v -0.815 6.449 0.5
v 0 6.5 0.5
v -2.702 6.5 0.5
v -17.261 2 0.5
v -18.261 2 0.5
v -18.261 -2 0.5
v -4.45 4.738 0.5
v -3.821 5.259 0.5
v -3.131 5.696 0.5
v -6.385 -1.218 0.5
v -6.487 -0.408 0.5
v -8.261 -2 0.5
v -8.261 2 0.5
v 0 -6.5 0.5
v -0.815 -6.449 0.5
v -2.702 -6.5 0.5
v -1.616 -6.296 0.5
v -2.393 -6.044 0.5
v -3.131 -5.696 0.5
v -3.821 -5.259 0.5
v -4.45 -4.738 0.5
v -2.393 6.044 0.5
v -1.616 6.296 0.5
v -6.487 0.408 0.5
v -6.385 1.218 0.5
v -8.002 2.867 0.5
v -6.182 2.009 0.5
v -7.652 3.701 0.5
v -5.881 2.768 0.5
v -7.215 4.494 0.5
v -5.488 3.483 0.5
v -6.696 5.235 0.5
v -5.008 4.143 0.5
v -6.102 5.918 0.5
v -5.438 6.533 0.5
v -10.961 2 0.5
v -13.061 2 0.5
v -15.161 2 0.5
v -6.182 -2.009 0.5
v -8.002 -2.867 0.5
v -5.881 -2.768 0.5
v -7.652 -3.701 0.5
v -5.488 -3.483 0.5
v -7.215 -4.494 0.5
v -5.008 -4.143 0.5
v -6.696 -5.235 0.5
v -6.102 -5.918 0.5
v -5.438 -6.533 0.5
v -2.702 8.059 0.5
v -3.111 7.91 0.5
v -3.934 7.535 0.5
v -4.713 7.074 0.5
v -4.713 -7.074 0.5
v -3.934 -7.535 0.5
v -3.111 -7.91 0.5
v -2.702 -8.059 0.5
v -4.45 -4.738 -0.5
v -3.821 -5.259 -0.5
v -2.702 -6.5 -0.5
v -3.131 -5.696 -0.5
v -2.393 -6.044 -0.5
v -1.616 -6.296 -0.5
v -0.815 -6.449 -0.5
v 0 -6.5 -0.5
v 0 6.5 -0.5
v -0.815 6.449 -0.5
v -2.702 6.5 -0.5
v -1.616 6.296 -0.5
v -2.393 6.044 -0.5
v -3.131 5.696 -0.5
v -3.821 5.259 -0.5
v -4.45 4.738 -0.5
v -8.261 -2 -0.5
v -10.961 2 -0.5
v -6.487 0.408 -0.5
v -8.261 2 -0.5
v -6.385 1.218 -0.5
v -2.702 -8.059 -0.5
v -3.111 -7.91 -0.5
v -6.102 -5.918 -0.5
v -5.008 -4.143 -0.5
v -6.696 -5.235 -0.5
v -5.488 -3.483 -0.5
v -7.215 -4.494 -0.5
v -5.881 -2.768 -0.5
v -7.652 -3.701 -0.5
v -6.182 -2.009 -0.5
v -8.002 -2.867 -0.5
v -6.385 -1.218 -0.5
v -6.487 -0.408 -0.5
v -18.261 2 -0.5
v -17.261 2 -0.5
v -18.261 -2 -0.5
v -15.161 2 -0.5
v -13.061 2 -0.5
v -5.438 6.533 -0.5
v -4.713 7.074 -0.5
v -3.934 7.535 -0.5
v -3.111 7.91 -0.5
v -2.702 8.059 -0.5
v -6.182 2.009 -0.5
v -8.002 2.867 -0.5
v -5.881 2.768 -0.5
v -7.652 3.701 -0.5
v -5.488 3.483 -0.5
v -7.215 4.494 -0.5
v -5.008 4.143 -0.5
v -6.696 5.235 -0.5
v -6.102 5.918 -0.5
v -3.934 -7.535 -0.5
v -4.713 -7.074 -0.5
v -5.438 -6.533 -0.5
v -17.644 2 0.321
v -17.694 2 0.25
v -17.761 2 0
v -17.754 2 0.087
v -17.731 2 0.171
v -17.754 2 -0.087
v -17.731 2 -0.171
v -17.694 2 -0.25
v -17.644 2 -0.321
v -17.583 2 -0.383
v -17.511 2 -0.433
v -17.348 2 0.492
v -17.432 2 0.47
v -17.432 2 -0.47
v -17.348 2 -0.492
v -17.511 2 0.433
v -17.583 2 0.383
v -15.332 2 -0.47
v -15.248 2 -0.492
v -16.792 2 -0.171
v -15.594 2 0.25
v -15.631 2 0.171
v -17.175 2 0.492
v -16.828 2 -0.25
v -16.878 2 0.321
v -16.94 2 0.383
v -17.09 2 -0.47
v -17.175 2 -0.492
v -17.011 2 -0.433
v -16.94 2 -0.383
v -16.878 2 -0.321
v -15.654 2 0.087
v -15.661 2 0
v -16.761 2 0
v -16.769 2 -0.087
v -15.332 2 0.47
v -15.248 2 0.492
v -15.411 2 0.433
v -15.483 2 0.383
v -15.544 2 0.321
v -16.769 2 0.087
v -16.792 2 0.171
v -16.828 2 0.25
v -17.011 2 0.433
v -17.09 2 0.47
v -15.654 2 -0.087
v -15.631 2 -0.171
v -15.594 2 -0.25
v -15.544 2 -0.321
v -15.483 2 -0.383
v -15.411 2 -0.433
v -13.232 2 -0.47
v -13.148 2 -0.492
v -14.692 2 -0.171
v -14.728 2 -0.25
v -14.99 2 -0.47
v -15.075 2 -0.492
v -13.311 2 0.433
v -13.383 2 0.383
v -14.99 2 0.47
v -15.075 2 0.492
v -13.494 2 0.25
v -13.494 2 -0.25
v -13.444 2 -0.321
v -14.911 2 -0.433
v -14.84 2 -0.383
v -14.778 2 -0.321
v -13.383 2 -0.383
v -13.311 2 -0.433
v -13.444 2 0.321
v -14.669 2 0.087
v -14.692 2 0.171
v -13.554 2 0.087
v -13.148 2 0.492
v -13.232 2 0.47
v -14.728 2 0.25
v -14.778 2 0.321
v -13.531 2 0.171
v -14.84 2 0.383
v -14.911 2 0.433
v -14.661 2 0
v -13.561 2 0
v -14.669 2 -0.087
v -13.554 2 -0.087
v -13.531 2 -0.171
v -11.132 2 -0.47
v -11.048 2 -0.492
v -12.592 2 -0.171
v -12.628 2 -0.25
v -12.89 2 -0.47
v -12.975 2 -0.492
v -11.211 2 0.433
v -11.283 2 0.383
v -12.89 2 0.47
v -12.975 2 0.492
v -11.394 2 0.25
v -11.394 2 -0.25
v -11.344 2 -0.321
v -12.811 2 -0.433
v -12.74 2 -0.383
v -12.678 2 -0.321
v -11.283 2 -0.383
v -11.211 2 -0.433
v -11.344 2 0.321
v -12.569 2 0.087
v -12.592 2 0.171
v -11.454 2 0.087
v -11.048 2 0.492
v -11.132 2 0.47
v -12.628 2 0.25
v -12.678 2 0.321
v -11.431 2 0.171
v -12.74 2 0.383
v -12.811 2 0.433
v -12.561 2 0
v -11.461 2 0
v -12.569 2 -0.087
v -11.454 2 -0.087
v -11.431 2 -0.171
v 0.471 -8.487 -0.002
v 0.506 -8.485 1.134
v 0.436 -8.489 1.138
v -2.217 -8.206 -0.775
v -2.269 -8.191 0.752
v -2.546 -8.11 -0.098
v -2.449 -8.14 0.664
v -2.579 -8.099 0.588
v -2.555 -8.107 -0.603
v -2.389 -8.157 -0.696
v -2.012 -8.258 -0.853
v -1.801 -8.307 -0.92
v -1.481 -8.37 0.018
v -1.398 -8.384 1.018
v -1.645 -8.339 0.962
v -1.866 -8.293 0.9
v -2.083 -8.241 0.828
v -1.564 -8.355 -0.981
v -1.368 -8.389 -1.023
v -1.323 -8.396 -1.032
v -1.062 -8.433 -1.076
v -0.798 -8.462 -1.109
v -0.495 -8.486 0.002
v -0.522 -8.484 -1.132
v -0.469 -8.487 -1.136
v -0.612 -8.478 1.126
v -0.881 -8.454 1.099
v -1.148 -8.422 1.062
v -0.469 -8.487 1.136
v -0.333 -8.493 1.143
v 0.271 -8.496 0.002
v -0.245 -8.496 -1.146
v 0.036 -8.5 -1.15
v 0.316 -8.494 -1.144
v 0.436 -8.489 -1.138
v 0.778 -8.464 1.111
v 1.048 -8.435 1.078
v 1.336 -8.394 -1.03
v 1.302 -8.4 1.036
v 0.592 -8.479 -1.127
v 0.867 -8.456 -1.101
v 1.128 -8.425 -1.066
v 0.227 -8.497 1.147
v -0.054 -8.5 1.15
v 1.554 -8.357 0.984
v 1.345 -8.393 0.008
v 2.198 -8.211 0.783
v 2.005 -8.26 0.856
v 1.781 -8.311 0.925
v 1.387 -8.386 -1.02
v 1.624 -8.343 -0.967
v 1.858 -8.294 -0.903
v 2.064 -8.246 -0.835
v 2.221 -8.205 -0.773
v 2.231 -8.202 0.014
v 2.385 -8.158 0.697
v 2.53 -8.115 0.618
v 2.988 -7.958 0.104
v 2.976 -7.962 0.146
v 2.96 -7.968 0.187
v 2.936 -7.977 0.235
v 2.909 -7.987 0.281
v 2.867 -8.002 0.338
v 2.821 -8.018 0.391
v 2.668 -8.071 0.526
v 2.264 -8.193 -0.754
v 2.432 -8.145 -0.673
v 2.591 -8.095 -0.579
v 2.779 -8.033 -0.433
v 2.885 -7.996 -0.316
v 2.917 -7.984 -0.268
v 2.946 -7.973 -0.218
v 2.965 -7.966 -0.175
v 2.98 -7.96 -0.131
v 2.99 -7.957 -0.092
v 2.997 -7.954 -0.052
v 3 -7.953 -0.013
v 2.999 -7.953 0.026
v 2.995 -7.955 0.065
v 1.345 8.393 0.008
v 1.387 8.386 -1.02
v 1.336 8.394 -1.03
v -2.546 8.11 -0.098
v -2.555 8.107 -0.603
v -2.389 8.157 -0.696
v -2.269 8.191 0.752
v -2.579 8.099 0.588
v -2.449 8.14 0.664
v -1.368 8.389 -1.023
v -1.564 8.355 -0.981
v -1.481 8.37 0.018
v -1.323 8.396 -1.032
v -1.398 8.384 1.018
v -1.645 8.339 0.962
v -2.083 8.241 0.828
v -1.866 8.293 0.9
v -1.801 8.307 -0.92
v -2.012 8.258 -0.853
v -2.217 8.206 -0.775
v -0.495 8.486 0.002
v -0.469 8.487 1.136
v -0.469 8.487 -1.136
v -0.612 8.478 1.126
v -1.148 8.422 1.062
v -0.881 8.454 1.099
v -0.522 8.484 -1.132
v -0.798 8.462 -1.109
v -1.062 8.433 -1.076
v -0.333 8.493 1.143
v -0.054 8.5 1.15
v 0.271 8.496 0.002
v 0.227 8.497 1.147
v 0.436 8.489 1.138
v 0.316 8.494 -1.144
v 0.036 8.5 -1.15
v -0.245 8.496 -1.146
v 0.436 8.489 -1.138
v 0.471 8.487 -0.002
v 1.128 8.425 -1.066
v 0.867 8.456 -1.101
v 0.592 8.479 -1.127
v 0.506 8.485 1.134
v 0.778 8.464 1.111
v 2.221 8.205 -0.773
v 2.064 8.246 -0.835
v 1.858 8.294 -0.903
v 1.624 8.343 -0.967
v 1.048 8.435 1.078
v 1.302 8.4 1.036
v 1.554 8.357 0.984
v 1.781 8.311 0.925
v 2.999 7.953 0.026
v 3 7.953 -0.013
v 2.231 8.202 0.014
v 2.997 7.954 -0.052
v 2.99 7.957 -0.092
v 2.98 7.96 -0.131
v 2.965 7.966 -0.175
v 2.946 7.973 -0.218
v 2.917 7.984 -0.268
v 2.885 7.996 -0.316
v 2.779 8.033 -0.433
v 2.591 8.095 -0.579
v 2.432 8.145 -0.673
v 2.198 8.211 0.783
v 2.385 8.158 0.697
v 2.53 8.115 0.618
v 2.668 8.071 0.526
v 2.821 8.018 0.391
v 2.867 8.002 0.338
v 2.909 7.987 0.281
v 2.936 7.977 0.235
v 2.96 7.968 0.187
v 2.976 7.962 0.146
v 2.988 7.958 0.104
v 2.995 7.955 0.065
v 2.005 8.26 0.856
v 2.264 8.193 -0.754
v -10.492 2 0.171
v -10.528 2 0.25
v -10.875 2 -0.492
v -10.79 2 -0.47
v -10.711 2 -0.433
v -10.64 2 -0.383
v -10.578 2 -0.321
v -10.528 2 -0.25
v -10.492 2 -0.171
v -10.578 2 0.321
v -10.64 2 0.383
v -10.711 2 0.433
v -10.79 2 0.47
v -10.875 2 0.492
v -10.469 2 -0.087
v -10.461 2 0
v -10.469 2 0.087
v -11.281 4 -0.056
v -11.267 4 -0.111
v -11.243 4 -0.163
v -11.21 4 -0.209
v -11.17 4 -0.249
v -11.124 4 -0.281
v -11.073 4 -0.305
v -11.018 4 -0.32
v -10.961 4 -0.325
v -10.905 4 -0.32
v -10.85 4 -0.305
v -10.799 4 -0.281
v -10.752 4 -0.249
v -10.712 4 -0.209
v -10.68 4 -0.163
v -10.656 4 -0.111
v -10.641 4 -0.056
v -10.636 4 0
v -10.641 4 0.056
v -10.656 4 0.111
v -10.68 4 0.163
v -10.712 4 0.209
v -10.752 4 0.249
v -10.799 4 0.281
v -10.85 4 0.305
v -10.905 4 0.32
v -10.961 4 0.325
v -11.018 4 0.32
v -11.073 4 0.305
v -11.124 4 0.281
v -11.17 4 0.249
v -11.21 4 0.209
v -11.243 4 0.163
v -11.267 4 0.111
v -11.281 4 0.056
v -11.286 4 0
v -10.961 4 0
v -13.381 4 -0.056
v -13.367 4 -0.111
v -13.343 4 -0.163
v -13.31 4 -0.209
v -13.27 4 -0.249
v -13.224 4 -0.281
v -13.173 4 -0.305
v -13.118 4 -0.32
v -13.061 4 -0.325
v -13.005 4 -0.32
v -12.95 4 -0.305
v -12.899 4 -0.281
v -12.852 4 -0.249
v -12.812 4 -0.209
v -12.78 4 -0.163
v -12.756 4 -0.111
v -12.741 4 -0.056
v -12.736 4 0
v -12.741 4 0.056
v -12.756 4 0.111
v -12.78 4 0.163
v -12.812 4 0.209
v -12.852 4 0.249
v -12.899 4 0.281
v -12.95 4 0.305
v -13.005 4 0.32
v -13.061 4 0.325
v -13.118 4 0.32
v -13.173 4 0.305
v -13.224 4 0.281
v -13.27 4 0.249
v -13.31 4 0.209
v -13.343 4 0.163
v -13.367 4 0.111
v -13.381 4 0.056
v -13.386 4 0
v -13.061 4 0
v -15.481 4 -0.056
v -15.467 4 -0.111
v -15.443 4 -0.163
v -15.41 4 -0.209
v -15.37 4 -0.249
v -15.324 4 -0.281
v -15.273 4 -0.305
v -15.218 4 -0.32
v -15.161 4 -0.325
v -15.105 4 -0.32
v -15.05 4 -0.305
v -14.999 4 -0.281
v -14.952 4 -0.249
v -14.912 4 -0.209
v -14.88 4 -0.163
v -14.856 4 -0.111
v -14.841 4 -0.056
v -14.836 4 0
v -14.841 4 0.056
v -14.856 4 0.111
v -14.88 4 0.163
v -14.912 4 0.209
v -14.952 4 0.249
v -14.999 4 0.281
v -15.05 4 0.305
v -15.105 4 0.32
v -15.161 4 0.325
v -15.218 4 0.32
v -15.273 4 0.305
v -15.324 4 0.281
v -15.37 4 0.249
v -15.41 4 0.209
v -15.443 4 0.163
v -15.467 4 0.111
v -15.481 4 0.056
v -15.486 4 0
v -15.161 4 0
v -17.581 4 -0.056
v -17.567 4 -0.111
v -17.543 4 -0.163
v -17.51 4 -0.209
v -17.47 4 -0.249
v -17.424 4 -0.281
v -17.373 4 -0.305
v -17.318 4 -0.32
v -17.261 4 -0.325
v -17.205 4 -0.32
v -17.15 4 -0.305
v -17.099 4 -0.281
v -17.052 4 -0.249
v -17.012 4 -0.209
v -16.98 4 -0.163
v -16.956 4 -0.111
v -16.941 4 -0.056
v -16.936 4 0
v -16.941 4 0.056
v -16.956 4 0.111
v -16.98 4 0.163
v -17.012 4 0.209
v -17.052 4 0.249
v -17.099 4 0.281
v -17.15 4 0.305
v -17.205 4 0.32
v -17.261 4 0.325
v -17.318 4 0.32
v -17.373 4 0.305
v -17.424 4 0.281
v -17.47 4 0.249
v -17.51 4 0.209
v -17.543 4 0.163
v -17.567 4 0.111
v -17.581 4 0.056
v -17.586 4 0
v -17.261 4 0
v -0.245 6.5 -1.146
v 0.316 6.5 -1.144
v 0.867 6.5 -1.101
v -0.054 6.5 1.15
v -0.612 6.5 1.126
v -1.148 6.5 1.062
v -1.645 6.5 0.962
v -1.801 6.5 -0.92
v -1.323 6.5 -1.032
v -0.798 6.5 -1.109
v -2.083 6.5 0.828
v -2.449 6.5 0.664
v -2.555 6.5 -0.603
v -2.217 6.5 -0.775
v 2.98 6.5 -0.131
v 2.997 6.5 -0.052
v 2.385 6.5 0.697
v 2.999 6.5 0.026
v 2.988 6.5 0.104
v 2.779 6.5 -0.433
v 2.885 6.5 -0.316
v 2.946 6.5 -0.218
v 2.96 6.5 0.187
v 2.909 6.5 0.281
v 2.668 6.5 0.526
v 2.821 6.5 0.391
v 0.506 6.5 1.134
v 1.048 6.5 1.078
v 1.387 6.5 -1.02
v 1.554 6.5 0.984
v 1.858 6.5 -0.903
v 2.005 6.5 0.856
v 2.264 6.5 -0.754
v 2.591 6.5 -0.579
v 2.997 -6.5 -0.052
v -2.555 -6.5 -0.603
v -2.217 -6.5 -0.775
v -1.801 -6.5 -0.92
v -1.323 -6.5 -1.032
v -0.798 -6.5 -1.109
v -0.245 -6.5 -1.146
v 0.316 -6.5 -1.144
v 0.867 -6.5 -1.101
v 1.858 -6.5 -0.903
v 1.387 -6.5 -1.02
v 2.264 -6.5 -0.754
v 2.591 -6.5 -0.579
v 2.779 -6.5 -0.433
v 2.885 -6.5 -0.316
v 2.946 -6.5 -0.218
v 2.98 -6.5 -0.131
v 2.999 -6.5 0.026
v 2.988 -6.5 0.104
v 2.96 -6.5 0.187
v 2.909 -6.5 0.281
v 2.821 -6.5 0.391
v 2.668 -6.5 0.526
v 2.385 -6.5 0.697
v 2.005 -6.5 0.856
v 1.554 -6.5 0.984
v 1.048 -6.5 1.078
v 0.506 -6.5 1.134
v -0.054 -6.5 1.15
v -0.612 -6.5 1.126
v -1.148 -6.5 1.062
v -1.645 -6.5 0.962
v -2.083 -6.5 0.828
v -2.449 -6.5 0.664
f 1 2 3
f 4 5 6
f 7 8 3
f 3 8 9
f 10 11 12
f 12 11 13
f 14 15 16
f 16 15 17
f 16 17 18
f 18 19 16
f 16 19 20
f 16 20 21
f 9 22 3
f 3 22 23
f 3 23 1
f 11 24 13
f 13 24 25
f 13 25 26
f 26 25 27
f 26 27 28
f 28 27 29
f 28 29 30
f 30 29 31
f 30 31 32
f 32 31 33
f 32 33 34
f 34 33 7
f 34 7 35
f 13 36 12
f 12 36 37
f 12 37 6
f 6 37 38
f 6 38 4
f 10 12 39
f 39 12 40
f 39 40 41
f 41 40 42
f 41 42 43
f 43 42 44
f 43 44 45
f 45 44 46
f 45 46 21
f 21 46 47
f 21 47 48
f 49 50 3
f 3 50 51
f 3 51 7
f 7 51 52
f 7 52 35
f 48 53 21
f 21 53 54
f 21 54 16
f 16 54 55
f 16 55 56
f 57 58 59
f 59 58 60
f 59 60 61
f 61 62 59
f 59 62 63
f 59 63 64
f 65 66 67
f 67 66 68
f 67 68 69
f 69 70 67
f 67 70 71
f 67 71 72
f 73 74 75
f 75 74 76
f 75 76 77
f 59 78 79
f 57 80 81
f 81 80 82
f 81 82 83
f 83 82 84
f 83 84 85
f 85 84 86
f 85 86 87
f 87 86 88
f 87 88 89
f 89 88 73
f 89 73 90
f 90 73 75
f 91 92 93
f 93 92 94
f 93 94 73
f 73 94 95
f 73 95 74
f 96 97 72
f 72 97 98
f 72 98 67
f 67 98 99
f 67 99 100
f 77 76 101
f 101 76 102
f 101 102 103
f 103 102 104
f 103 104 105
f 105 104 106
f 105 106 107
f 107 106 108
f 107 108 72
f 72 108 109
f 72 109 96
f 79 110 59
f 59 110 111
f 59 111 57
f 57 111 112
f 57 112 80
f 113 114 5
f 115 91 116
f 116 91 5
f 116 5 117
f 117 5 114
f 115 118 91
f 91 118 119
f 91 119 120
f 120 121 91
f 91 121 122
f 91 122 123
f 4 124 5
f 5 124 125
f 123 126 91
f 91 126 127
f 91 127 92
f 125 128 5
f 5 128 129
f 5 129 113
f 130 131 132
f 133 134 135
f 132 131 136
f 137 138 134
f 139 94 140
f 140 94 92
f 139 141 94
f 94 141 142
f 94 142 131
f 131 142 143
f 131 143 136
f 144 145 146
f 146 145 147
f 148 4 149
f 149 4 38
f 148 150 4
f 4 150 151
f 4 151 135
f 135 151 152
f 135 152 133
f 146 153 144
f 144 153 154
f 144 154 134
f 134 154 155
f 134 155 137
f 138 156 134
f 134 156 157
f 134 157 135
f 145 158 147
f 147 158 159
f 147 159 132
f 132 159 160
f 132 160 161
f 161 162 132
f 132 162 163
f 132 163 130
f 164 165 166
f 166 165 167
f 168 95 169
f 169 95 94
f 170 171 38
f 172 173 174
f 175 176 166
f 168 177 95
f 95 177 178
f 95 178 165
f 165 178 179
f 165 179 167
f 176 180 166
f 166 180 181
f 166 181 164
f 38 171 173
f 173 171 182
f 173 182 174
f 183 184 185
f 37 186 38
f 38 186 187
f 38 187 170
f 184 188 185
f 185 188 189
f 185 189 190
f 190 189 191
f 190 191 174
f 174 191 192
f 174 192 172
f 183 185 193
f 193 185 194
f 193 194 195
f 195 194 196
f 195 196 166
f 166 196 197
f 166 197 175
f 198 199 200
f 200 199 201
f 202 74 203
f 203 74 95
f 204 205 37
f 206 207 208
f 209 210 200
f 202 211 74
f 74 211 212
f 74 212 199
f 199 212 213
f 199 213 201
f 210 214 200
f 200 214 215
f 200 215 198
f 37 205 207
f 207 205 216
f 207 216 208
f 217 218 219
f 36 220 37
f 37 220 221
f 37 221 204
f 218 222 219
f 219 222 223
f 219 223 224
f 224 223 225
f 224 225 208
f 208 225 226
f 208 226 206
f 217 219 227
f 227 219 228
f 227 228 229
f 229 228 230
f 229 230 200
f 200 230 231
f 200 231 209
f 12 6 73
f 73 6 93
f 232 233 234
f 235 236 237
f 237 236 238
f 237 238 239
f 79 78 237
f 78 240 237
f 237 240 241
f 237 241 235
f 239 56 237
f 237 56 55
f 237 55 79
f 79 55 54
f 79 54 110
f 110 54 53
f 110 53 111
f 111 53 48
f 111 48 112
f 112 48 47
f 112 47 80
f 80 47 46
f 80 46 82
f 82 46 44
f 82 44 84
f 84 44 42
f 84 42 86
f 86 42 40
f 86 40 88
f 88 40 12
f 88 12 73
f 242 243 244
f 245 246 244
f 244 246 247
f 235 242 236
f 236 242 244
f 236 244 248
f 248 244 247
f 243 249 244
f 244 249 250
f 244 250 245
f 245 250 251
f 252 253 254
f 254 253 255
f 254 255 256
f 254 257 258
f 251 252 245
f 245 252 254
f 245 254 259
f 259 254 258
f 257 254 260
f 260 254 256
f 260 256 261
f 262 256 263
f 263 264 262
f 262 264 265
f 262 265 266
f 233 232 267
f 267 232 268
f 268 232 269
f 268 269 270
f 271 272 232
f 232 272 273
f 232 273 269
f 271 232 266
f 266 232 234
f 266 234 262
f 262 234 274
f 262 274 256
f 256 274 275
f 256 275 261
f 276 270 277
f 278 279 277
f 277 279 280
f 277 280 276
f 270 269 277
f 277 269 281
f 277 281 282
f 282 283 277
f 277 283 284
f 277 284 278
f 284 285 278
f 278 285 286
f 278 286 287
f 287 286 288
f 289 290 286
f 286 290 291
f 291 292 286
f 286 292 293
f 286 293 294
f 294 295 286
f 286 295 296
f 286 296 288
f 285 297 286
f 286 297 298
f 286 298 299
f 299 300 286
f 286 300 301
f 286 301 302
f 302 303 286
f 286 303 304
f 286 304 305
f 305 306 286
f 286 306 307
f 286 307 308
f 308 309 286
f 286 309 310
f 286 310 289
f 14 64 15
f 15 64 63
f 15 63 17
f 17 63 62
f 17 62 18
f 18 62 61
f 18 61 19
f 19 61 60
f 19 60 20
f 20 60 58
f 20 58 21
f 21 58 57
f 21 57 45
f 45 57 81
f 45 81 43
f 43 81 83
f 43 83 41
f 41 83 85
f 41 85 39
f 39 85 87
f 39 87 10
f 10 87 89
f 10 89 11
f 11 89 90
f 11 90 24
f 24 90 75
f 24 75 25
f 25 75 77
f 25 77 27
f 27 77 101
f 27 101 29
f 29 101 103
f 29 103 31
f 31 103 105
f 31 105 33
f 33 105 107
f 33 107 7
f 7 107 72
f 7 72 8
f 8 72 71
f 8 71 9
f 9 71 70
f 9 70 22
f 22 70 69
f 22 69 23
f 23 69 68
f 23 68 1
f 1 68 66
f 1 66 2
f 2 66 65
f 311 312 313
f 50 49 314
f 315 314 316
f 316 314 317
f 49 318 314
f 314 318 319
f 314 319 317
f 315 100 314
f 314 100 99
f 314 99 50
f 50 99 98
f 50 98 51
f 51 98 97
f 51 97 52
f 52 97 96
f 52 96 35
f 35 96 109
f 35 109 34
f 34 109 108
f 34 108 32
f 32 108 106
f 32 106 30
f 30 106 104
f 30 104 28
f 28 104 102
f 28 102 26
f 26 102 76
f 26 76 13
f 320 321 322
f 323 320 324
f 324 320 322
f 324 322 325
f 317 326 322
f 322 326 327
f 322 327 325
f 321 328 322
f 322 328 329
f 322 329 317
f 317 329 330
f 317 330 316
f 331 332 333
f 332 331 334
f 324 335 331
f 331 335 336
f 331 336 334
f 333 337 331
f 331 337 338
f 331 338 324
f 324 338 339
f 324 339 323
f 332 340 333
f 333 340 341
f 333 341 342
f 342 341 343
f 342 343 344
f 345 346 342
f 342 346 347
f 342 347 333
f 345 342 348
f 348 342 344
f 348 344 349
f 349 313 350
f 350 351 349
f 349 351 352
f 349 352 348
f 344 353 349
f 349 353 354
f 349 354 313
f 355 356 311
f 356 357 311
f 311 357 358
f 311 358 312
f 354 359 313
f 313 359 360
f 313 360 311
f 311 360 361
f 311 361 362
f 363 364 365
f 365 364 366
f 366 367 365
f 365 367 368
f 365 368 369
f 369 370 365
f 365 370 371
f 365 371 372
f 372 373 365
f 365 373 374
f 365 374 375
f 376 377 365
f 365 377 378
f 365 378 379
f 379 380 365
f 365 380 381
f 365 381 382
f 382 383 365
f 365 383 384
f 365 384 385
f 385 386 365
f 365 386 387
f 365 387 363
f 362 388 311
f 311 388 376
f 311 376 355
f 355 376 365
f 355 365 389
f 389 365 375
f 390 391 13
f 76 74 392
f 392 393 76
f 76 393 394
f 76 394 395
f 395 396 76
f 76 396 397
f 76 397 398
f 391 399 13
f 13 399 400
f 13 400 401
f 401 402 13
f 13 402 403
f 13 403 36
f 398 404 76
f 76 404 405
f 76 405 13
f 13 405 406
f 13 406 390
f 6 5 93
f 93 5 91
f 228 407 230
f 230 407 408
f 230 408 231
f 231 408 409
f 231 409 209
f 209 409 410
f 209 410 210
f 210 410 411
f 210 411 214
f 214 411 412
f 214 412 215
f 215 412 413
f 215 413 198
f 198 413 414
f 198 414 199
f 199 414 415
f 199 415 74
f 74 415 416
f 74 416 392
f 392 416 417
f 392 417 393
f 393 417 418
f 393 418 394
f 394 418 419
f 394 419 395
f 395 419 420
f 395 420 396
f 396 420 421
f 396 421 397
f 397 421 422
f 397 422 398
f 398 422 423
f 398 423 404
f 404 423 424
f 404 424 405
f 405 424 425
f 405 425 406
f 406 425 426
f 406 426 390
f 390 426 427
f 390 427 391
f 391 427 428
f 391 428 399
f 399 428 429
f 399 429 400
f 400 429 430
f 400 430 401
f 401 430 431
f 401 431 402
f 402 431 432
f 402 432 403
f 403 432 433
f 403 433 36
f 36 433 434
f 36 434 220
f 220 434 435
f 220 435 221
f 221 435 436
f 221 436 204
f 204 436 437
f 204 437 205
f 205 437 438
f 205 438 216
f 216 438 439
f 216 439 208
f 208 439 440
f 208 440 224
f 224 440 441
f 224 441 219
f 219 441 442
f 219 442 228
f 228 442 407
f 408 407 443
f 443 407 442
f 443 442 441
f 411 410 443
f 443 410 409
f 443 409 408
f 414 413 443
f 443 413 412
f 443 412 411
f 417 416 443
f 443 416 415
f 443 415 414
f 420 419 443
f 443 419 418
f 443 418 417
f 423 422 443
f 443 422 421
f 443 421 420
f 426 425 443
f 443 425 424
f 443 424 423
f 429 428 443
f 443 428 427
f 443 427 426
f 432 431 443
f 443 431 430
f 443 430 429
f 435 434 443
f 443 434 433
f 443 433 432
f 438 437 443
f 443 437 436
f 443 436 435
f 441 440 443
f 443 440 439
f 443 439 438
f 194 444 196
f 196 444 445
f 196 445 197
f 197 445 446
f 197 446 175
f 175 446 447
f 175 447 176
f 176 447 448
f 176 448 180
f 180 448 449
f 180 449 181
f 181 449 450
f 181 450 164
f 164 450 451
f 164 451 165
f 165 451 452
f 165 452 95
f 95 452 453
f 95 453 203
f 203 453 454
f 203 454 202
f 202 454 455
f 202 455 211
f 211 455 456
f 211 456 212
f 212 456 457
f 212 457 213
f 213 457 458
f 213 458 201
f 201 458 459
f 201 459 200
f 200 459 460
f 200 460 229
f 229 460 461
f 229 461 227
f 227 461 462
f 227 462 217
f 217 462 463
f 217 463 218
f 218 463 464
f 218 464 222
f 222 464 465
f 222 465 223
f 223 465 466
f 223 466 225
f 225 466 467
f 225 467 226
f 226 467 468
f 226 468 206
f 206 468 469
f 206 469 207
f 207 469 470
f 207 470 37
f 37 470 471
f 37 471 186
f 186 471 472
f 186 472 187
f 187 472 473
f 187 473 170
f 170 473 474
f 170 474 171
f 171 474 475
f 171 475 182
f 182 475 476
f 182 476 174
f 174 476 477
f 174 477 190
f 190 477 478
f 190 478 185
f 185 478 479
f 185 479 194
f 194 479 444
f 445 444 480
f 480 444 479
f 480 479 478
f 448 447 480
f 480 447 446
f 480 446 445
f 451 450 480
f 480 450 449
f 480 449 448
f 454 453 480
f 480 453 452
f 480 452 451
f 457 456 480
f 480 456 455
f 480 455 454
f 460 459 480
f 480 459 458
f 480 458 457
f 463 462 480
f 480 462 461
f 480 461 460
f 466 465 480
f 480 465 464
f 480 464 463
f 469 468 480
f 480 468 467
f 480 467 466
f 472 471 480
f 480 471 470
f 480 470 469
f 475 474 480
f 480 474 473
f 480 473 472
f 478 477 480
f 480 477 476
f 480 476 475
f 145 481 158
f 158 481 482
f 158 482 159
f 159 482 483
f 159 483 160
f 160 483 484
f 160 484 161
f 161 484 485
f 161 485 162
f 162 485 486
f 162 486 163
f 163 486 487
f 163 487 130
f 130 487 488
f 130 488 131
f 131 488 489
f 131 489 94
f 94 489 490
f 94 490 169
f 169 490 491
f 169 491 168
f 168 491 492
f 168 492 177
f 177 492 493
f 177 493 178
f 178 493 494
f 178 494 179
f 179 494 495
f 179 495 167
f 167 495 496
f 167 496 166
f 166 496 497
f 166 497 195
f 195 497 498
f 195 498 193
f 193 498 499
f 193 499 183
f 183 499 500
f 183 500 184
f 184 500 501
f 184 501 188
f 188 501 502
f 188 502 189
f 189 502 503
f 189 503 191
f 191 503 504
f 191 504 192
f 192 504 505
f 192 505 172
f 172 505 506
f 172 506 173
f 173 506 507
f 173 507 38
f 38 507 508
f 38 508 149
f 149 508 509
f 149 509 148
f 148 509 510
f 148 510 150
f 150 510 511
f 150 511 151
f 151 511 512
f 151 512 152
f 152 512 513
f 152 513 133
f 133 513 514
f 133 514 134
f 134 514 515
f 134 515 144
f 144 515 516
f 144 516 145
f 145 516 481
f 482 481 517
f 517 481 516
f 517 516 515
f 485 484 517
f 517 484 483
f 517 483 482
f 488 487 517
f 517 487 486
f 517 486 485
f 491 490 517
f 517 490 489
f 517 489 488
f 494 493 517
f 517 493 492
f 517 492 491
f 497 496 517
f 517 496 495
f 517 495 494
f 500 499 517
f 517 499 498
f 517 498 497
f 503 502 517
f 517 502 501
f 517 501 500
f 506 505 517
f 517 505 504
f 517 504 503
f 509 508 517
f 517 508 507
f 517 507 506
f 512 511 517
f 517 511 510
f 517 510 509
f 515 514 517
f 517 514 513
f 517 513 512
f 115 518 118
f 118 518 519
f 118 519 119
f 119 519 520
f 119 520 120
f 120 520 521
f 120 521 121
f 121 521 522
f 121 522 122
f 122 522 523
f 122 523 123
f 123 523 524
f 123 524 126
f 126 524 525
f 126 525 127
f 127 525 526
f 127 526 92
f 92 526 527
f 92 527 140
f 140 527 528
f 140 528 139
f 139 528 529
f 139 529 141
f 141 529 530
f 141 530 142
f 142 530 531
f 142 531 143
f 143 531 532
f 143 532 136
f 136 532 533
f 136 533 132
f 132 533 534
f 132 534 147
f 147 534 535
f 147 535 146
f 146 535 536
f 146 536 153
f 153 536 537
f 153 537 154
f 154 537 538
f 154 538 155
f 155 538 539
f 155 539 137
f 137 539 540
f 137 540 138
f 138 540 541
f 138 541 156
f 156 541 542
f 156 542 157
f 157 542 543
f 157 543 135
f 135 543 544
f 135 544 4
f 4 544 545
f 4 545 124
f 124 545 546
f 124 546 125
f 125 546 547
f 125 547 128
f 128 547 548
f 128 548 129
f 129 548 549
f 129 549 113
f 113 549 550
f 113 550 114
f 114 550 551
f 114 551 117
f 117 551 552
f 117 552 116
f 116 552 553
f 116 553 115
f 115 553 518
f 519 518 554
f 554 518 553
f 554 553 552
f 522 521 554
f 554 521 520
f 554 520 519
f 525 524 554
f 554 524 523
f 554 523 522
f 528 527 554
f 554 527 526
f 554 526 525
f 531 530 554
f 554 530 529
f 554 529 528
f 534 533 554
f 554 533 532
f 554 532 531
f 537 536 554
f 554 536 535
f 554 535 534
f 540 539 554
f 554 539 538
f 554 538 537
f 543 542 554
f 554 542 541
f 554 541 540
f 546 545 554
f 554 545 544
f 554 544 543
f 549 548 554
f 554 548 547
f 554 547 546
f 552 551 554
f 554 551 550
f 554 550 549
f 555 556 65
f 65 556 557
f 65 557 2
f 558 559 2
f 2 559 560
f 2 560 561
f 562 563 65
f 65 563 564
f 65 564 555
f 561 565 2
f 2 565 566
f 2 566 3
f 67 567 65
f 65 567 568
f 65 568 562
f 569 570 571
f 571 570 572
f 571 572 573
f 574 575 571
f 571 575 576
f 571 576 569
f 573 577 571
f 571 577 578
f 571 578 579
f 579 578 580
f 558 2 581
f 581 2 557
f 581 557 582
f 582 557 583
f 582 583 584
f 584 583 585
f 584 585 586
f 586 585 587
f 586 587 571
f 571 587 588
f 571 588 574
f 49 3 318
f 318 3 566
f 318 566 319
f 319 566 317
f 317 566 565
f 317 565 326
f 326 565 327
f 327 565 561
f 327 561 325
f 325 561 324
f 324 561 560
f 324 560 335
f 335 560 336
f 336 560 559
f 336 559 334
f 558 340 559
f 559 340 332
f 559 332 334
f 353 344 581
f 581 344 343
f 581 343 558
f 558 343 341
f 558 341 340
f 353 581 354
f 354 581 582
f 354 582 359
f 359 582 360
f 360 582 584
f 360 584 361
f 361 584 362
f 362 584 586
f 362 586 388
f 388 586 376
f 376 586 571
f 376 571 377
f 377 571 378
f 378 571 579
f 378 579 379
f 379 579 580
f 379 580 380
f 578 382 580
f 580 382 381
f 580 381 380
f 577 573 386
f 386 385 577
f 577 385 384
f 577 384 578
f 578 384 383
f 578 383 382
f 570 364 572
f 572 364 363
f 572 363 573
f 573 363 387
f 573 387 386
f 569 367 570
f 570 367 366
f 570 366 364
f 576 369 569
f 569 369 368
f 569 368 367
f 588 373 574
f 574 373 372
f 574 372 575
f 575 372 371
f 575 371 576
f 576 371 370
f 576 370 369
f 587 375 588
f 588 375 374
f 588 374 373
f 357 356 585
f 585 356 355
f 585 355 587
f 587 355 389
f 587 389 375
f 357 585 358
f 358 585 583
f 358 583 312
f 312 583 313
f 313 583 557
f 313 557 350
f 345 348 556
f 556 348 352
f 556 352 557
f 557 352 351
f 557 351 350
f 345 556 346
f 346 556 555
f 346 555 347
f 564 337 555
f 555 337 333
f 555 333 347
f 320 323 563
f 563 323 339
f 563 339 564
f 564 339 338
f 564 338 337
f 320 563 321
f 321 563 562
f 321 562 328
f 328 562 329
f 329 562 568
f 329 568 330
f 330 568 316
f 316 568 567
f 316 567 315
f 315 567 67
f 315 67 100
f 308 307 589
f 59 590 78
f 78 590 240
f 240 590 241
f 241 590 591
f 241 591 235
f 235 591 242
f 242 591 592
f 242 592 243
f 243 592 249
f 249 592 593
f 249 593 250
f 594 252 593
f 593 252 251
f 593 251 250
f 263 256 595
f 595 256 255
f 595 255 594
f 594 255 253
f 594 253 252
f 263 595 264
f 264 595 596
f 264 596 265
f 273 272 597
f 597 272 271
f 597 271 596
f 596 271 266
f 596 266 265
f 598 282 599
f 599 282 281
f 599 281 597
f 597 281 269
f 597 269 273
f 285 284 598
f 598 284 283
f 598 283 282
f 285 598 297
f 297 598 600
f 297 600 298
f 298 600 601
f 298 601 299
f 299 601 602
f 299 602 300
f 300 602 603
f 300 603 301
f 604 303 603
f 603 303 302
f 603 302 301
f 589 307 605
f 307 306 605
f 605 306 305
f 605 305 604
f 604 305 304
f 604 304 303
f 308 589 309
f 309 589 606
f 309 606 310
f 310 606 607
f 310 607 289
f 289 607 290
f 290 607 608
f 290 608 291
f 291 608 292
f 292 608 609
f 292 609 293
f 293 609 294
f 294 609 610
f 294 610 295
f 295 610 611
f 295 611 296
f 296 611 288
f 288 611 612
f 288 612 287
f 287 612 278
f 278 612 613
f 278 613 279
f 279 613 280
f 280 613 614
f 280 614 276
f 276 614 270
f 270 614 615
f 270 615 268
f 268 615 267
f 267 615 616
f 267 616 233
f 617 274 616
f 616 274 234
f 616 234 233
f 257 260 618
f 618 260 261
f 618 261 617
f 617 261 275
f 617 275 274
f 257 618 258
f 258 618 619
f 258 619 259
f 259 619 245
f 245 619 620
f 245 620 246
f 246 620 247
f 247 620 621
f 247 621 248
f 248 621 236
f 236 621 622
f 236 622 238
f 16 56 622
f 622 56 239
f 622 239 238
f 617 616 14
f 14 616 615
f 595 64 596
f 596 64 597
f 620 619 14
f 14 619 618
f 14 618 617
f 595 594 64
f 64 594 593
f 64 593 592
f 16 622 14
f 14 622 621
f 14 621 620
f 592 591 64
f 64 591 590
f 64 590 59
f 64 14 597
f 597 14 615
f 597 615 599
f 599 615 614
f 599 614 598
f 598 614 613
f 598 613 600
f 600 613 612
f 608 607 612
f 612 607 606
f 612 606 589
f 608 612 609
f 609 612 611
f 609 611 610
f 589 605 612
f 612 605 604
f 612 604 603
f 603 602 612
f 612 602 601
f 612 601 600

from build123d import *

# Parameters (mm, degrees)
BOSS_EXTRUDE1_DEPTH           = 0.5
SKETCH2_R                     = 0.5
BOSS_EXTRUDE2_DEPTH           = 2
BOSS_EXTRUDE2_DRAFT           = 5
BOSS_EXTRUDE2_PROFILE_2_DEPTH = 2
BOSS_EXTRUDE2_PROFILE_2_DRAFT = 5
BOSS_EXTRUDE2_PROFILE_3_DEPTH = 2
BOSS_EXTRUDE2_PROFILE_3_DRAFT = 5
BOSS_EXTRUDE2_PROFILE_4_DEPTH = 2
BOSS_EXTRUDE2_PROFILE_4_DRAFT = 5
BOSS_EXTRUDE3_REACH           = 25.637
BOSS_EXTRUDE3_END_RADIUS      = 8.5
SKETCH5_RX                    = 3
SKETCH5_RY                    = 1.15


with BuildPart() as part:
    # Sketch1 → Boss-Extrude1 (new, symmetric)
    with BuildSketch(Plane.XY):
        with BuildLine():
            Line((-8.261355821, 2), (-18.261355821, 2))
            Line((-18.261355821, 2), (-18.261355821, -2))
            Line((-18.261355821, -2), (-8.261355821, -2))
            ThreePointArc((-8.261355821, -2), (-8.5, 0), (-8.261355821, 2))
        make_face()
        with BuildLine():
            Line((-5.94e-07, 8.5), (-5.94e-07, 6.5))
            ThreePointArc((-5.94e-07, 6.5), (-6.5, 0), (-5.94e-07, -6.5))
            Line((-5.94e-07, -6.5), (-5.94e-07, -8.5))
            ThreePointArc((-5.94e-07, -8.5), (-8.5, 0), (-5.94e-07, 8.5))
        make_face()
        with BuildLine():
            ThreePointArc((-5.94e-07, 8.5), (-0.626706342, 8.476864937), (-1.250000594, 8.407585772))
            Line((-1.250000594, 8.407585772), (-1.250000594, 6.5))
            Line((-1.250000594, 6.5), (-5.94e-07, 6.5))
            Line((-5.94e-07, 6.5), (-5.94e-07, 8.5))
        make_face()
        with BuildLine():
            Line((-1.250000594, -6.5), (-1.250000594, -8.407585772))
            ThreePointArc((-1.250000594, -8.407585772), (-0.626706342, -8.476864937), (-5.94e-07, -8.5))
            Line((-5.94e-07, -8.5), (-5.94e-07, -6.5))
            Line((-5.94e-07, -6.5), (-1.250000594, -6.5))
        make_face()
    extrude(amount=BOSS_EXTRUDE1_DEPTH, both=True)


with BuildPart() as boss_extrude2_tool:
    # Sketch2 → Boss-Extrude2 (with draft: the straight prism first)
    with BuildSketch(Plane(origin=(0, 2, 0), x_dir=(1, 0, 0), z_dir=(0, 1, 0))):
        with Locations((-17.261355821, 0)):
            Circle(SKETCH2_R)
    extrude(amount=BOSS_EXTRUDE2_DEPTH)
    # Boss-Extrude2: the draft: its side faces are tilted about the plane it starts from
    boss_extrude2_sides = [boss_extrude2_tool.faces().sort_by_distance(p)[0] for p in [
        (-17.761355821, 3, 0),
    ]]
    draft(boss_extrude2_sides, Plane(origin=(0, 2, 0), x_dir=(1, 0, 0), z_dir=(0, 1, 0)), BOSS_EXTRUDE2_DRAFT)


with BuildPart() as part_1:
    add(part.part)

    # Boss-Extrude2: add boss_extrude2_tool
    add(boss_extrude2_tool.part)


with BuildPart() as boss_extrude2_profile_2_tool:
    # Sketch2 → Boss-Extrude2 profile 2 (with draft: the straight prism first)
    with BuildSketch(Plane(origin=(0, 2, 0), x_dir=(1, 0, 0), z_dir=(0, 1, 0))):
        with Locations((-15.161355821, 0)):
            Circle(SKETCH2_R)
    extrude(amount=BOSS_EXTRUDE2_PROFILE_2_DEPTH)
    # Boss-Extrude2 profile 2: the draft: its side faces are tilted about the plane it starts from
    boss_extrude2_profile_2_sides = [boss_extrude2_profile_2_tool.faces().sort_by_distance(p)[0] for p in [
        (-15.661355821, 3, 0),
    ]]
    draft(boss_extrude2_profile_2_sides, Plane(origin=(0, 2, 0), x_dir=(1, 0, 0), z_dir=(0, 1, 0)), BOSS_EXTRUDE2_PROFILE_2_DRAFT)


with BuildPart() as part_2:
    add(part_1.part)

    # Boss-Extrude2 profile 2: add boss_extrude2_profile_2_tool
    add(boss_extrude2_profile_2_tool.part)


with BuildPart() as boss_extrude2_profile_3_tool:
    # Sketch2 → Boss-Extrude2 profile 3 (with draft: the straight prism first)
    with BuildSketch(Plane(origin=(0, 2, 0), x_dir=(1, 0, 0), z_dir=(0, 1, 0))):
        with Locations((-13.061355821, 0)):
            Circle(SKETCH2_R)
    extrude(amount=BOSS_EXTRUDE2_PROFILE_3_DEPTH)
    # Boss-Extrude2 profile 3: the draft: its side faces are tilted about the plane it starts from
    boss_extrude2_profile_3_sides = [boss_extrude2_profile_3_tool.faces().sort_by_distance(p)[0] for p in [
        (-13.561355821, 3, 0),
    ]]
    draft(boss_extrude2_profile_3_sides, Plane(origin=(0, 2, 0), x_dir=(1, 0, 0), z_dir=(0, 1, 0)), BOSS_EXTRUDE2_PROFILE_3_DRAFT)


with BuildPart() as part_3:
    add(part_2.part)

    # Boss-Extrude2 profile 3: add boss_extrude2_profile_3_tool
    add(boss_extrude2_profile_3_tool.part)


with BuildPart() as boss_extrude2_profile_4_tool:
    # Sketch2 → Boss-Extrude2 profile 4 (with draft: the straight prism first)
    with BuildSketch(Plane(origin=(0, 2, 0), x_dir=(1, 0, 0), z_dir=(0, 1, 0))):
        with Locations((-10.961355821, 0)):
            Circle(SKETCH2_R)
    extrude(amount=BOSS_EXTRUDE2_PROFILE_4_DEPTH)
    # Boss-Extrude2 profile 4: the draft: its side faces are tilted about the plane it starts from
    boss_extrude2_profile_4_sides = [boss_extrude2_profile_4_tool.faces().sort_by_distance(p)[0] for p in [
        (-11.461355821, 3, 0),
    ]]
    draft(boss_extrude2_profile_4_sides, Plane(origin=(0, 2, 0), x_dir=(1, 0, 0), z_dir=(0, 1, 0)), BOSS_EXTRUDE2_PROFILE_4_DRAFT)


with BuildPart() as part_4:
    add(part_3.part)

    # Boss-Extrude2 profile 4: add boss_extrude2_profile_4_tool
    add(boss_extrude2_profile_4_tool.part)

    # Boss-Extrude3: up to this cylinder (the profile starts inside it)
    boss_extrude3_end = Plane(origin=(0, 0, 0), z_dir=(0, 0, -1)) * Cylinder(BOSS_EXTRUDE3_END_RADIUS, 69.274, mode=Mode.PRIVATE)
    # Sketch5 → Boss-Extrude3 (add, up to the surface)
    with BuildSketch(Plane(origin=(0, 6.5, 0), x_dir=(1, 0, 0), z_dir=(0, 1, 0)), mode=Mode.PRIVATE) as boss_extrude3_sk1:
        with Locations((0, 0)):
            Ellipse(SKETCH5_RX, SKETCH5_RY)
    boss_extrude3_tool1 = extrude(boss_extrude3_sk1.sketch, amount=BOSS_EXTRUDE3_REACH, mode=Mode.PRIVATE) & boss_extrude3_end
    boss_extrude3 = boss_extrude3_tool1.solids().sort_by_distance((0, 6.5, 0))[0]
    add(boss_extrude3)

    # Mirror1: Boss-Extrude3 across plane
    add(boss_extrude3.mirror(Plane.ZX))


solid = part_4.part
